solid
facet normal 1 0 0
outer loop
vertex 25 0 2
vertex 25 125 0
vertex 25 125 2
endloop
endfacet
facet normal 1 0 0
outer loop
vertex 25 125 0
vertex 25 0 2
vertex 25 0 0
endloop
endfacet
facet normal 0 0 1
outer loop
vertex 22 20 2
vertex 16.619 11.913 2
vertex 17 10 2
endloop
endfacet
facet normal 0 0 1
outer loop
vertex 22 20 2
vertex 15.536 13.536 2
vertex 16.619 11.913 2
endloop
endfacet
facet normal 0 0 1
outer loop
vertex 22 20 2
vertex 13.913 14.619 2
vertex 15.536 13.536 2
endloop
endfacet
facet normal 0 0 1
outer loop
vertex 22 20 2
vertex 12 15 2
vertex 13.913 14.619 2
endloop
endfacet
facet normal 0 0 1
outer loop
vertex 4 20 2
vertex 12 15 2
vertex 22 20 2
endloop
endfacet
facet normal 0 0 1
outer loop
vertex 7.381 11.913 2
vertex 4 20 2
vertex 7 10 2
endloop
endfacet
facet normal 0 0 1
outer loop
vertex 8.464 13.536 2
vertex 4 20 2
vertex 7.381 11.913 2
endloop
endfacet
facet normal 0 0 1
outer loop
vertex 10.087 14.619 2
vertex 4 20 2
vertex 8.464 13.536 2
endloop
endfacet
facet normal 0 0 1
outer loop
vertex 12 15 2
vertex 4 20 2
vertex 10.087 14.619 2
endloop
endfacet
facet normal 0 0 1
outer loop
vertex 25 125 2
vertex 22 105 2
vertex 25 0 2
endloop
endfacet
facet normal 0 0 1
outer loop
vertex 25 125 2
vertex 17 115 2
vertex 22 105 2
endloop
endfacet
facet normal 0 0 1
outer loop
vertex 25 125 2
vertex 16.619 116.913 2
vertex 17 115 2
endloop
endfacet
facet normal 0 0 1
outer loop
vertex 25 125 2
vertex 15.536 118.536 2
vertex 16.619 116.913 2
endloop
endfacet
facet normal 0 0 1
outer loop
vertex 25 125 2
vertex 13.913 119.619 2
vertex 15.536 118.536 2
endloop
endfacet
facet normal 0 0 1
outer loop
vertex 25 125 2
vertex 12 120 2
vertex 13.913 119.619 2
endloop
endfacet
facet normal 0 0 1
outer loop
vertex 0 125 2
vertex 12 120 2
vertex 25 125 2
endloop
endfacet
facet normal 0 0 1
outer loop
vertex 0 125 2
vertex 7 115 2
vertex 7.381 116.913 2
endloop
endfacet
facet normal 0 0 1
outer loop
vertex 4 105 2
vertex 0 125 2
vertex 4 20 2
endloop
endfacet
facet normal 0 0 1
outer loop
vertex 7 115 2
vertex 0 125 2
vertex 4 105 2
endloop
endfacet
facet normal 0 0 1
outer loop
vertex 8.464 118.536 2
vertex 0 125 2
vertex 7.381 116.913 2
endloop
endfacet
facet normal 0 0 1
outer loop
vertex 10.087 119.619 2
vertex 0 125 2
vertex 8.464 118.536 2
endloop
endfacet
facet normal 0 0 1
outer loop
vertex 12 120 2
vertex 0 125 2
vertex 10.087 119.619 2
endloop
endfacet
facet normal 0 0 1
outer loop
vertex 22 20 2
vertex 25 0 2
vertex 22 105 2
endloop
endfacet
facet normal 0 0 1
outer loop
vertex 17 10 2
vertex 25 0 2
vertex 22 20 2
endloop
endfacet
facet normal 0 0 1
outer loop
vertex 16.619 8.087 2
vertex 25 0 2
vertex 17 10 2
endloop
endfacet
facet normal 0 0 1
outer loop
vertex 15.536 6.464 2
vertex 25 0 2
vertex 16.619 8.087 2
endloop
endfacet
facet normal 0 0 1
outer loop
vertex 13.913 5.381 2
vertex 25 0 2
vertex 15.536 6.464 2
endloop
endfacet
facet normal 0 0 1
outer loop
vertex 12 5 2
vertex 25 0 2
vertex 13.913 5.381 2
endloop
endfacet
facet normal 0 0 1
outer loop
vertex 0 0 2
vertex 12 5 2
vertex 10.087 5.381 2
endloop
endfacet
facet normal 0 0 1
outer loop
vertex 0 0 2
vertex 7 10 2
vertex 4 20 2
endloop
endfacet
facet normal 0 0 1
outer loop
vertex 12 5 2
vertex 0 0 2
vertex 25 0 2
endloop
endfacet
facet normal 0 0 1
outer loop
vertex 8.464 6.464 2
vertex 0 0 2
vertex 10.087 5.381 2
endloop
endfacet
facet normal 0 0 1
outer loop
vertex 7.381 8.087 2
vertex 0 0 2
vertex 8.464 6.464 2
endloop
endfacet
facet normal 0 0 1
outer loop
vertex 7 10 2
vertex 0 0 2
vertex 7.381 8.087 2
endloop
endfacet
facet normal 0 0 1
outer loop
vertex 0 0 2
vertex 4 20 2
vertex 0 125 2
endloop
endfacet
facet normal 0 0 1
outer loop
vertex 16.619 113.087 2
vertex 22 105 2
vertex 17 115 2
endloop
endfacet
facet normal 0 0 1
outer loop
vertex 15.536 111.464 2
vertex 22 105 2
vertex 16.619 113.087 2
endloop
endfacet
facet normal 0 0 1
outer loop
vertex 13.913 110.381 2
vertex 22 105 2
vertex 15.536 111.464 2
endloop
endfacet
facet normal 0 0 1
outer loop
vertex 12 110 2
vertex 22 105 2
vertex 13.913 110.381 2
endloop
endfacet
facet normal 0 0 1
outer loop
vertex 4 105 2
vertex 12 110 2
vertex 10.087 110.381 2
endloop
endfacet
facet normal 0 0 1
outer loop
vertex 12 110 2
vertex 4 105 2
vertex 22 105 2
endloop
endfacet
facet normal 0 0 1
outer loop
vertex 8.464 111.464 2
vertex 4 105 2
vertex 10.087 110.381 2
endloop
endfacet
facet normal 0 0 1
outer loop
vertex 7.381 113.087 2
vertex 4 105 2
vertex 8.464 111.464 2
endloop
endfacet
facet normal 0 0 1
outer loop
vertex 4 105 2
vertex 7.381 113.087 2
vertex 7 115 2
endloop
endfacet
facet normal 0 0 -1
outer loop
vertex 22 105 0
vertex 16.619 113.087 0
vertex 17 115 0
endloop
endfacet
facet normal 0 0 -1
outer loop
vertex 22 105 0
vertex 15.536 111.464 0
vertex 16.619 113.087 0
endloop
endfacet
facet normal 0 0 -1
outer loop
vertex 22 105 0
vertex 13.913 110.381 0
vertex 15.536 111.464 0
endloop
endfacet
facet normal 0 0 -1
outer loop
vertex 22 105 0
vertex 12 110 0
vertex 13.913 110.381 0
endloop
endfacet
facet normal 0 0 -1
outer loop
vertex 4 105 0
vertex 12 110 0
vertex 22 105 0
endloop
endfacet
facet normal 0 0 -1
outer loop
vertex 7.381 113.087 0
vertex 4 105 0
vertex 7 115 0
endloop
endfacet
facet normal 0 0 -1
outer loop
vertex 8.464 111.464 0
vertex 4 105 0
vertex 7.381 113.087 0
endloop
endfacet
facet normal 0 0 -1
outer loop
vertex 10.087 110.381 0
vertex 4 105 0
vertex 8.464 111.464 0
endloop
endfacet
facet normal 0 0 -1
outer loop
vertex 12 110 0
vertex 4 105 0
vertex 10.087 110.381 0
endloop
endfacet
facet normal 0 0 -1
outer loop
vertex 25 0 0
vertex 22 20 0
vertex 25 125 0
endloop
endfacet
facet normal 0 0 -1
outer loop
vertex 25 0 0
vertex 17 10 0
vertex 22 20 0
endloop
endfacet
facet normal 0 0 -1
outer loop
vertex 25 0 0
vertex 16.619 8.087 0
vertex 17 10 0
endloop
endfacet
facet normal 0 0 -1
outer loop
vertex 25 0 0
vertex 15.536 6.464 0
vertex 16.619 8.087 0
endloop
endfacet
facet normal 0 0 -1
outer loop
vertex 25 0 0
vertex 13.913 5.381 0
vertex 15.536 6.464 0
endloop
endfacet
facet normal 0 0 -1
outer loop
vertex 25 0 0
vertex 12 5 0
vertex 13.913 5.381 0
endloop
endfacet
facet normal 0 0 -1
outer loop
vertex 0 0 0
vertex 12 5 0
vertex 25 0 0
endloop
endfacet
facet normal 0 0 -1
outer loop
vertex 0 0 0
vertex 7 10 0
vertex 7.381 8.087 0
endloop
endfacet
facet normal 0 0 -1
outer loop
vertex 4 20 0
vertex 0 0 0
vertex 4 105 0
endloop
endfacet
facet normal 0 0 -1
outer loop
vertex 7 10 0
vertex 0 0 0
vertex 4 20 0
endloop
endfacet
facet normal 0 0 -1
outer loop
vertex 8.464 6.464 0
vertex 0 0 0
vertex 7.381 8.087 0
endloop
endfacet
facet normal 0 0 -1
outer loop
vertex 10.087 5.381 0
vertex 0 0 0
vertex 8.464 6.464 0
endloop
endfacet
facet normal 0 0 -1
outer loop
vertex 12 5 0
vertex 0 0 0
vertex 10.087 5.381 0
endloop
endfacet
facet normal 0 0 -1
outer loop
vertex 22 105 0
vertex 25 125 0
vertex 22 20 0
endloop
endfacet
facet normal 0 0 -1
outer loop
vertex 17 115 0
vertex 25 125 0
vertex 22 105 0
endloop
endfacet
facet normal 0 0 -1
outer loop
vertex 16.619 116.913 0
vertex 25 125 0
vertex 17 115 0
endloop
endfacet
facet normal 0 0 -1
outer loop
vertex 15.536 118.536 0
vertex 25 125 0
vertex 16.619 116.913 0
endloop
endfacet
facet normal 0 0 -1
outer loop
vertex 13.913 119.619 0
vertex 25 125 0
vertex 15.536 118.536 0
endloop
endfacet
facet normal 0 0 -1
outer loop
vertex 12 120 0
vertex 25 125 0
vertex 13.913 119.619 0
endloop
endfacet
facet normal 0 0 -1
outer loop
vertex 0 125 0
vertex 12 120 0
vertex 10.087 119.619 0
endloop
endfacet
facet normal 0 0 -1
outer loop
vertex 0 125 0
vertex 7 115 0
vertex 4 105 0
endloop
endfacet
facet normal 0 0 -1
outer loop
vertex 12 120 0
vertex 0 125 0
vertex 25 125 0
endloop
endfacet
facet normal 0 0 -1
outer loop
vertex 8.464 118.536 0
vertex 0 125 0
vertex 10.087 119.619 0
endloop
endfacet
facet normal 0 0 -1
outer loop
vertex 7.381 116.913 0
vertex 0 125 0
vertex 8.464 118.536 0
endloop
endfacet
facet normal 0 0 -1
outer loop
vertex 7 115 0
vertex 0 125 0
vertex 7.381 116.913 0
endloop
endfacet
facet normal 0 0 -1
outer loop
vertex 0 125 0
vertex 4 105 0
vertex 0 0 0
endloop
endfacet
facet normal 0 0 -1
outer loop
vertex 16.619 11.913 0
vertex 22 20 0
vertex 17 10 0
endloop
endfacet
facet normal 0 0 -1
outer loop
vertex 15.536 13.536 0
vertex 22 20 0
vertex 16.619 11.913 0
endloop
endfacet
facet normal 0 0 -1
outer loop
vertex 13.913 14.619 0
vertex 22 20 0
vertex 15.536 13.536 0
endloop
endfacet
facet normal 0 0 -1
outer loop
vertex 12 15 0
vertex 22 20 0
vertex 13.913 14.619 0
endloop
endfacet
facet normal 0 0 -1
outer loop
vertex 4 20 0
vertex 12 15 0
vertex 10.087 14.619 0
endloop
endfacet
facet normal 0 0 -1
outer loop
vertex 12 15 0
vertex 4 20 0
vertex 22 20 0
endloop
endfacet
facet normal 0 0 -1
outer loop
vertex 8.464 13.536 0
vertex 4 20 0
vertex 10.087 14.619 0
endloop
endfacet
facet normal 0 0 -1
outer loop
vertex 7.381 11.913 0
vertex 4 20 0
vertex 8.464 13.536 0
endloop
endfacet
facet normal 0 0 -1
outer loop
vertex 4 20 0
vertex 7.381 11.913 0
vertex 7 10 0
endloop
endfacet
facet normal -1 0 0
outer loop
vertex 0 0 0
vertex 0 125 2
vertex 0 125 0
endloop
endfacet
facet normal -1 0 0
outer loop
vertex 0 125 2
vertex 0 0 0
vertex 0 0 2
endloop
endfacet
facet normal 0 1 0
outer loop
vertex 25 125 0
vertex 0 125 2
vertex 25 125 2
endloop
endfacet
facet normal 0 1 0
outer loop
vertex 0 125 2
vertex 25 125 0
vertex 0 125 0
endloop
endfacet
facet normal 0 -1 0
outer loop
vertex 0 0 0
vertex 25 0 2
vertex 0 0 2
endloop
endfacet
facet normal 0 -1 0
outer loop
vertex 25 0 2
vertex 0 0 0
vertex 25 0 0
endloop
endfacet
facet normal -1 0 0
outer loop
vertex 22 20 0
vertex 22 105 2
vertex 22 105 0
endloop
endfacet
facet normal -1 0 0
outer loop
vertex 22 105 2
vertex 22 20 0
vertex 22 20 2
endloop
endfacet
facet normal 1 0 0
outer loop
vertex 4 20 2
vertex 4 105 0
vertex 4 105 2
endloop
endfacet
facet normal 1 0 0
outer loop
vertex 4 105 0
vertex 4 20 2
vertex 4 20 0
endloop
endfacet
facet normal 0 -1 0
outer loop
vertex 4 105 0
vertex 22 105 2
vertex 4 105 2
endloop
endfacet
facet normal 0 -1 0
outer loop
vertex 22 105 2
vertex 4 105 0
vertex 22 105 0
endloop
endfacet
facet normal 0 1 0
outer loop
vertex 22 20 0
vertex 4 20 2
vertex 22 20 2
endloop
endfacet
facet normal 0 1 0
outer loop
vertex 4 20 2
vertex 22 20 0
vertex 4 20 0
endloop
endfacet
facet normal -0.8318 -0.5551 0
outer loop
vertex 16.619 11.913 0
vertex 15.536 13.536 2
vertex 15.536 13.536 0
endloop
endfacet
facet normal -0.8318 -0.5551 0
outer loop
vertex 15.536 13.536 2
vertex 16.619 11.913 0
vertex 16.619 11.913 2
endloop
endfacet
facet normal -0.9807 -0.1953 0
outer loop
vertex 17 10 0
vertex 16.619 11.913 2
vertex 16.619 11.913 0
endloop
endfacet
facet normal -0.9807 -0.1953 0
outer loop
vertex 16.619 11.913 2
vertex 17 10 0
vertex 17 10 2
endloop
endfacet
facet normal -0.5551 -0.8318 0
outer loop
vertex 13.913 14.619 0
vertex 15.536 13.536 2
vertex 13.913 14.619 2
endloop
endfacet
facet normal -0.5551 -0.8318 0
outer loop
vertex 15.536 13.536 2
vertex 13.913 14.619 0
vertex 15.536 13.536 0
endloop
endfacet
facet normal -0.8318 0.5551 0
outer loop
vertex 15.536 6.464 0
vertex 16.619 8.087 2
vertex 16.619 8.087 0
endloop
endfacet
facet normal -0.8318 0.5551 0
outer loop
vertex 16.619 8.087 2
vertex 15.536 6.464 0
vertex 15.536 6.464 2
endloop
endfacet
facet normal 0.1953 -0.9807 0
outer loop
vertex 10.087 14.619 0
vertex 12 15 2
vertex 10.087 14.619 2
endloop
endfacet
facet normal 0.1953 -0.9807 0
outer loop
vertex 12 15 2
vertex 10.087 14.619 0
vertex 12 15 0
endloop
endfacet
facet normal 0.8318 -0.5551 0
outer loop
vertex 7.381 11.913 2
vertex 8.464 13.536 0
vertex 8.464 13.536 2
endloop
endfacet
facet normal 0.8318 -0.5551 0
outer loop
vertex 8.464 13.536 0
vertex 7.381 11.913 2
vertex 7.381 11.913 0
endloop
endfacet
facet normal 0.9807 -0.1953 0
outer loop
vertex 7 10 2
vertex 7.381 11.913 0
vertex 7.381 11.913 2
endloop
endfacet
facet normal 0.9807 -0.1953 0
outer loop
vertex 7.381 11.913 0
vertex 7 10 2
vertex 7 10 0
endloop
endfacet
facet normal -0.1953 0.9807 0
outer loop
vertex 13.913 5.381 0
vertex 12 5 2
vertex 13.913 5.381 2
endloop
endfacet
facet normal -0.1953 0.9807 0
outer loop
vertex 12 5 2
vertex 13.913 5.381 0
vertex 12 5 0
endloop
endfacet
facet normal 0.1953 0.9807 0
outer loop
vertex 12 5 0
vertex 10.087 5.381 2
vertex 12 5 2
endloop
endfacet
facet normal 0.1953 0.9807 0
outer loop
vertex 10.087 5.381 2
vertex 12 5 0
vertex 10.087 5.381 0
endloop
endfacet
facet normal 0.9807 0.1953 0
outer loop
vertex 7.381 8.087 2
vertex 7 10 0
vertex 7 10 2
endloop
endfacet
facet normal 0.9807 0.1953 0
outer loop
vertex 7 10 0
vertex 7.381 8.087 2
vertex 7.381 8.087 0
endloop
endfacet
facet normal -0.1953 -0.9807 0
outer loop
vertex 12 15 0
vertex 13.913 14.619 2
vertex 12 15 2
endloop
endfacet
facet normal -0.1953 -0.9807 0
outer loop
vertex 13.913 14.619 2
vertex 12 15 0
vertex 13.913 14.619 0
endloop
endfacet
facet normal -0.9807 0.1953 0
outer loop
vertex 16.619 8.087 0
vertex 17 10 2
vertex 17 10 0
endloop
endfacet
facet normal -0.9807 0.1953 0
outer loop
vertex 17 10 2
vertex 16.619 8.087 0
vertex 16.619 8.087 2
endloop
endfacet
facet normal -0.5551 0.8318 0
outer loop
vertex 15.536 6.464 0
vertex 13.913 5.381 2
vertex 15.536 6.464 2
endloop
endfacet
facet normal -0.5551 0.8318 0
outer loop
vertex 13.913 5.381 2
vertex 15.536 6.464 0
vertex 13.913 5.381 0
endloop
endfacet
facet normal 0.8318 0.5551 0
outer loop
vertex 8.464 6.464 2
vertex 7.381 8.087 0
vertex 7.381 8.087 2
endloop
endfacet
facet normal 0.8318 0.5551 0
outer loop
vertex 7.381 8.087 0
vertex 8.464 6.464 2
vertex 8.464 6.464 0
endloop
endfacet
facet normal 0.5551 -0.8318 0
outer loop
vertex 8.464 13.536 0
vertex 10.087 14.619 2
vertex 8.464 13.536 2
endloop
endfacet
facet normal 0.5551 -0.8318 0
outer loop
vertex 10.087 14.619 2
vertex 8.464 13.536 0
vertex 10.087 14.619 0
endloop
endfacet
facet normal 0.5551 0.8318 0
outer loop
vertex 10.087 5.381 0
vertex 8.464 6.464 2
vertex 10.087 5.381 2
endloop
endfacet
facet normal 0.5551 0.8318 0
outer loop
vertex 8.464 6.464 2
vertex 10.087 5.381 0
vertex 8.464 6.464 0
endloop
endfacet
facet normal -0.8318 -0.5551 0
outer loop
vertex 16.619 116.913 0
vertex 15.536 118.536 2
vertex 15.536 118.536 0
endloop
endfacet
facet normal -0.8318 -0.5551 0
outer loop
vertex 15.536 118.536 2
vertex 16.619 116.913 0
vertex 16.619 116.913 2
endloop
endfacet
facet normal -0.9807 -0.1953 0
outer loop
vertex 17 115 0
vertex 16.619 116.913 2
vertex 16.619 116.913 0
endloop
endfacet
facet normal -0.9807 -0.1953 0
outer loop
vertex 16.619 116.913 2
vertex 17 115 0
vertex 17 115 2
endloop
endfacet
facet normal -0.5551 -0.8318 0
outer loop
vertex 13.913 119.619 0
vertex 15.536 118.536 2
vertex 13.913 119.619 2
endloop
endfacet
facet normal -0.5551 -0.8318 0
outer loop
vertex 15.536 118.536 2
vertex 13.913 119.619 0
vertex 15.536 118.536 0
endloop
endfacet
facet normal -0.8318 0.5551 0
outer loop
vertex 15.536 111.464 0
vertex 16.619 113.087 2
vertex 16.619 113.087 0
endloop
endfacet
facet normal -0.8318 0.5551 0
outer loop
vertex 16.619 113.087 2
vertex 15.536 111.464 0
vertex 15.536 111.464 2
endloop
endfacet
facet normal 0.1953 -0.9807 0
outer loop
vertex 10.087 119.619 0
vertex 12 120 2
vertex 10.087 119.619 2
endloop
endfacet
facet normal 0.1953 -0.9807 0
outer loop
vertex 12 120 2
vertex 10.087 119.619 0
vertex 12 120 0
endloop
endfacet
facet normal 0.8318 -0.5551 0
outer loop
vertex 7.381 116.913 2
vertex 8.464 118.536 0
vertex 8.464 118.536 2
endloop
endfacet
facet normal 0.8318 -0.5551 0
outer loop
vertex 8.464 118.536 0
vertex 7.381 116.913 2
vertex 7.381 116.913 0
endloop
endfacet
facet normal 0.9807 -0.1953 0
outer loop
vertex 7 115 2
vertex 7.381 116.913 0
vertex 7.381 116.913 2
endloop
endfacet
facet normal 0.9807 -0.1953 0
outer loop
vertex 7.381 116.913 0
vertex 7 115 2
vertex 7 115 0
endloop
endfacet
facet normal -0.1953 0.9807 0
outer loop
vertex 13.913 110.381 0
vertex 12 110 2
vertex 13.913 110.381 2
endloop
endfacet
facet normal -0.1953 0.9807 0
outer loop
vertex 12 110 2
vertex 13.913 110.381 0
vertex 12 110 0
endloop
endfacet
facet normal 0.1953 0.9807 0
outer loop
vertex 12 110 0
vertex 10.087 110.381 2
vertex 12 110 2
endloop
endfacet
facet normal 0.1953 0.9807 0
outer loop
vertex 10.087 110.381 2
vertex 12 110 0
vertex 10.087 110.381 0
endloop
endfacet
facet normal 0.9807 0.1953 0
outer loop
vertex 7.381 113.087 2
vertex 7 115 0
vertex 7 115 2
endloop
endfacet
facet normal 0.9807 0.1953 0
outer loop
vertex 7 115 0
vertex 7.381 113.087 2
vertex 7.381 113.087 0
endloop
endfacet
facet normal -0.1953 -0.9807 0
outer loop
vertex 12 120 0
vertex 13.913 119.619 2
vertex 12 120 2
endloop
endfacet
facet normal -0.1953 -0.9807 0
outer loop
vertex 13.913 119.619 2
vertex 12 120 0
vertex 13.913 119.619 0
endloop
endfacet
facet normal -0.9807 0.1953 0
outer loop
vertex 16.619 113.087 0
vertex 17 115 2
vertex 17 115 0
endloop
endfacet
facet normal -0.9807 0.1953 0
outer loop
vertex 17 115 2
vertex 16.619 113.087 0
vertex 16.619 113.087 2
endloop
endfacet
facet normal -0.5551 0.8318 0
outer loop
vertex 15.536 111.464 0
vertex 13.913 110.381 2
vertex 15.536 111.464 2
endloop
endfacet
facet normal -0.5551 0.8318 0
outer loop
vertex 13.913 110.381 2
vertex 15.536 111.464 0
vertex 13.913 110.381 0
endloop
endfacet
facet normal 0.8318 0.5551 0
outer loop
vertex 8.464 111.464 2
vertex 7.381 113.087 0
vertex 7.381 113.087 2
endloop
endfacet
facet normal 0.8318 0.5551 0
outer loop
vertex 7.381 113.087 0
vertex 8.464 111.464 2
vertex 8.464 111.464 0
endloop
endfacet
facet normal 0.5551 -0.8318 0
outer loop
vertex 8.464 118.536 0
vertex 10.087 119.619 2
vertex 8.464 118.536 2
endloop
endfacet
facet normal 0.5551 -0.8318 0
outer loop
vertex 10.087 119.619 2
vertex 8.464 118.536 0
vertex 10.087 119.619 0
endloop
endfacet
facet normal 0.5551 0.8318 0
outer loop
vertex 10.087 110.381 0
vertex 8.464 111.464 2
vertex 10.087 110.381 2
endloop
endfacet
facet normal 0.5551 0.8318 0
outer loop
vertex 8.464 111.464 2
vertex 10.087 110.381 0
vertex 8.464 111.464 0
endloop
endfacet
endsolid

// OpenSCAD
 difference() {
  // Outside edge
  cube([25, 125, 2]);

  // Inner slot
  translate([4, 20, -5])
    cube([18, 85, 10]);

  // Top circle
  translate([(5+7), (5+5), -5])
    cylinder(h=10,r=5);

  // Bottom circle
  translate([(5+7), (5+110 ), -5])
    cylinder(h=10,r=5);
}
